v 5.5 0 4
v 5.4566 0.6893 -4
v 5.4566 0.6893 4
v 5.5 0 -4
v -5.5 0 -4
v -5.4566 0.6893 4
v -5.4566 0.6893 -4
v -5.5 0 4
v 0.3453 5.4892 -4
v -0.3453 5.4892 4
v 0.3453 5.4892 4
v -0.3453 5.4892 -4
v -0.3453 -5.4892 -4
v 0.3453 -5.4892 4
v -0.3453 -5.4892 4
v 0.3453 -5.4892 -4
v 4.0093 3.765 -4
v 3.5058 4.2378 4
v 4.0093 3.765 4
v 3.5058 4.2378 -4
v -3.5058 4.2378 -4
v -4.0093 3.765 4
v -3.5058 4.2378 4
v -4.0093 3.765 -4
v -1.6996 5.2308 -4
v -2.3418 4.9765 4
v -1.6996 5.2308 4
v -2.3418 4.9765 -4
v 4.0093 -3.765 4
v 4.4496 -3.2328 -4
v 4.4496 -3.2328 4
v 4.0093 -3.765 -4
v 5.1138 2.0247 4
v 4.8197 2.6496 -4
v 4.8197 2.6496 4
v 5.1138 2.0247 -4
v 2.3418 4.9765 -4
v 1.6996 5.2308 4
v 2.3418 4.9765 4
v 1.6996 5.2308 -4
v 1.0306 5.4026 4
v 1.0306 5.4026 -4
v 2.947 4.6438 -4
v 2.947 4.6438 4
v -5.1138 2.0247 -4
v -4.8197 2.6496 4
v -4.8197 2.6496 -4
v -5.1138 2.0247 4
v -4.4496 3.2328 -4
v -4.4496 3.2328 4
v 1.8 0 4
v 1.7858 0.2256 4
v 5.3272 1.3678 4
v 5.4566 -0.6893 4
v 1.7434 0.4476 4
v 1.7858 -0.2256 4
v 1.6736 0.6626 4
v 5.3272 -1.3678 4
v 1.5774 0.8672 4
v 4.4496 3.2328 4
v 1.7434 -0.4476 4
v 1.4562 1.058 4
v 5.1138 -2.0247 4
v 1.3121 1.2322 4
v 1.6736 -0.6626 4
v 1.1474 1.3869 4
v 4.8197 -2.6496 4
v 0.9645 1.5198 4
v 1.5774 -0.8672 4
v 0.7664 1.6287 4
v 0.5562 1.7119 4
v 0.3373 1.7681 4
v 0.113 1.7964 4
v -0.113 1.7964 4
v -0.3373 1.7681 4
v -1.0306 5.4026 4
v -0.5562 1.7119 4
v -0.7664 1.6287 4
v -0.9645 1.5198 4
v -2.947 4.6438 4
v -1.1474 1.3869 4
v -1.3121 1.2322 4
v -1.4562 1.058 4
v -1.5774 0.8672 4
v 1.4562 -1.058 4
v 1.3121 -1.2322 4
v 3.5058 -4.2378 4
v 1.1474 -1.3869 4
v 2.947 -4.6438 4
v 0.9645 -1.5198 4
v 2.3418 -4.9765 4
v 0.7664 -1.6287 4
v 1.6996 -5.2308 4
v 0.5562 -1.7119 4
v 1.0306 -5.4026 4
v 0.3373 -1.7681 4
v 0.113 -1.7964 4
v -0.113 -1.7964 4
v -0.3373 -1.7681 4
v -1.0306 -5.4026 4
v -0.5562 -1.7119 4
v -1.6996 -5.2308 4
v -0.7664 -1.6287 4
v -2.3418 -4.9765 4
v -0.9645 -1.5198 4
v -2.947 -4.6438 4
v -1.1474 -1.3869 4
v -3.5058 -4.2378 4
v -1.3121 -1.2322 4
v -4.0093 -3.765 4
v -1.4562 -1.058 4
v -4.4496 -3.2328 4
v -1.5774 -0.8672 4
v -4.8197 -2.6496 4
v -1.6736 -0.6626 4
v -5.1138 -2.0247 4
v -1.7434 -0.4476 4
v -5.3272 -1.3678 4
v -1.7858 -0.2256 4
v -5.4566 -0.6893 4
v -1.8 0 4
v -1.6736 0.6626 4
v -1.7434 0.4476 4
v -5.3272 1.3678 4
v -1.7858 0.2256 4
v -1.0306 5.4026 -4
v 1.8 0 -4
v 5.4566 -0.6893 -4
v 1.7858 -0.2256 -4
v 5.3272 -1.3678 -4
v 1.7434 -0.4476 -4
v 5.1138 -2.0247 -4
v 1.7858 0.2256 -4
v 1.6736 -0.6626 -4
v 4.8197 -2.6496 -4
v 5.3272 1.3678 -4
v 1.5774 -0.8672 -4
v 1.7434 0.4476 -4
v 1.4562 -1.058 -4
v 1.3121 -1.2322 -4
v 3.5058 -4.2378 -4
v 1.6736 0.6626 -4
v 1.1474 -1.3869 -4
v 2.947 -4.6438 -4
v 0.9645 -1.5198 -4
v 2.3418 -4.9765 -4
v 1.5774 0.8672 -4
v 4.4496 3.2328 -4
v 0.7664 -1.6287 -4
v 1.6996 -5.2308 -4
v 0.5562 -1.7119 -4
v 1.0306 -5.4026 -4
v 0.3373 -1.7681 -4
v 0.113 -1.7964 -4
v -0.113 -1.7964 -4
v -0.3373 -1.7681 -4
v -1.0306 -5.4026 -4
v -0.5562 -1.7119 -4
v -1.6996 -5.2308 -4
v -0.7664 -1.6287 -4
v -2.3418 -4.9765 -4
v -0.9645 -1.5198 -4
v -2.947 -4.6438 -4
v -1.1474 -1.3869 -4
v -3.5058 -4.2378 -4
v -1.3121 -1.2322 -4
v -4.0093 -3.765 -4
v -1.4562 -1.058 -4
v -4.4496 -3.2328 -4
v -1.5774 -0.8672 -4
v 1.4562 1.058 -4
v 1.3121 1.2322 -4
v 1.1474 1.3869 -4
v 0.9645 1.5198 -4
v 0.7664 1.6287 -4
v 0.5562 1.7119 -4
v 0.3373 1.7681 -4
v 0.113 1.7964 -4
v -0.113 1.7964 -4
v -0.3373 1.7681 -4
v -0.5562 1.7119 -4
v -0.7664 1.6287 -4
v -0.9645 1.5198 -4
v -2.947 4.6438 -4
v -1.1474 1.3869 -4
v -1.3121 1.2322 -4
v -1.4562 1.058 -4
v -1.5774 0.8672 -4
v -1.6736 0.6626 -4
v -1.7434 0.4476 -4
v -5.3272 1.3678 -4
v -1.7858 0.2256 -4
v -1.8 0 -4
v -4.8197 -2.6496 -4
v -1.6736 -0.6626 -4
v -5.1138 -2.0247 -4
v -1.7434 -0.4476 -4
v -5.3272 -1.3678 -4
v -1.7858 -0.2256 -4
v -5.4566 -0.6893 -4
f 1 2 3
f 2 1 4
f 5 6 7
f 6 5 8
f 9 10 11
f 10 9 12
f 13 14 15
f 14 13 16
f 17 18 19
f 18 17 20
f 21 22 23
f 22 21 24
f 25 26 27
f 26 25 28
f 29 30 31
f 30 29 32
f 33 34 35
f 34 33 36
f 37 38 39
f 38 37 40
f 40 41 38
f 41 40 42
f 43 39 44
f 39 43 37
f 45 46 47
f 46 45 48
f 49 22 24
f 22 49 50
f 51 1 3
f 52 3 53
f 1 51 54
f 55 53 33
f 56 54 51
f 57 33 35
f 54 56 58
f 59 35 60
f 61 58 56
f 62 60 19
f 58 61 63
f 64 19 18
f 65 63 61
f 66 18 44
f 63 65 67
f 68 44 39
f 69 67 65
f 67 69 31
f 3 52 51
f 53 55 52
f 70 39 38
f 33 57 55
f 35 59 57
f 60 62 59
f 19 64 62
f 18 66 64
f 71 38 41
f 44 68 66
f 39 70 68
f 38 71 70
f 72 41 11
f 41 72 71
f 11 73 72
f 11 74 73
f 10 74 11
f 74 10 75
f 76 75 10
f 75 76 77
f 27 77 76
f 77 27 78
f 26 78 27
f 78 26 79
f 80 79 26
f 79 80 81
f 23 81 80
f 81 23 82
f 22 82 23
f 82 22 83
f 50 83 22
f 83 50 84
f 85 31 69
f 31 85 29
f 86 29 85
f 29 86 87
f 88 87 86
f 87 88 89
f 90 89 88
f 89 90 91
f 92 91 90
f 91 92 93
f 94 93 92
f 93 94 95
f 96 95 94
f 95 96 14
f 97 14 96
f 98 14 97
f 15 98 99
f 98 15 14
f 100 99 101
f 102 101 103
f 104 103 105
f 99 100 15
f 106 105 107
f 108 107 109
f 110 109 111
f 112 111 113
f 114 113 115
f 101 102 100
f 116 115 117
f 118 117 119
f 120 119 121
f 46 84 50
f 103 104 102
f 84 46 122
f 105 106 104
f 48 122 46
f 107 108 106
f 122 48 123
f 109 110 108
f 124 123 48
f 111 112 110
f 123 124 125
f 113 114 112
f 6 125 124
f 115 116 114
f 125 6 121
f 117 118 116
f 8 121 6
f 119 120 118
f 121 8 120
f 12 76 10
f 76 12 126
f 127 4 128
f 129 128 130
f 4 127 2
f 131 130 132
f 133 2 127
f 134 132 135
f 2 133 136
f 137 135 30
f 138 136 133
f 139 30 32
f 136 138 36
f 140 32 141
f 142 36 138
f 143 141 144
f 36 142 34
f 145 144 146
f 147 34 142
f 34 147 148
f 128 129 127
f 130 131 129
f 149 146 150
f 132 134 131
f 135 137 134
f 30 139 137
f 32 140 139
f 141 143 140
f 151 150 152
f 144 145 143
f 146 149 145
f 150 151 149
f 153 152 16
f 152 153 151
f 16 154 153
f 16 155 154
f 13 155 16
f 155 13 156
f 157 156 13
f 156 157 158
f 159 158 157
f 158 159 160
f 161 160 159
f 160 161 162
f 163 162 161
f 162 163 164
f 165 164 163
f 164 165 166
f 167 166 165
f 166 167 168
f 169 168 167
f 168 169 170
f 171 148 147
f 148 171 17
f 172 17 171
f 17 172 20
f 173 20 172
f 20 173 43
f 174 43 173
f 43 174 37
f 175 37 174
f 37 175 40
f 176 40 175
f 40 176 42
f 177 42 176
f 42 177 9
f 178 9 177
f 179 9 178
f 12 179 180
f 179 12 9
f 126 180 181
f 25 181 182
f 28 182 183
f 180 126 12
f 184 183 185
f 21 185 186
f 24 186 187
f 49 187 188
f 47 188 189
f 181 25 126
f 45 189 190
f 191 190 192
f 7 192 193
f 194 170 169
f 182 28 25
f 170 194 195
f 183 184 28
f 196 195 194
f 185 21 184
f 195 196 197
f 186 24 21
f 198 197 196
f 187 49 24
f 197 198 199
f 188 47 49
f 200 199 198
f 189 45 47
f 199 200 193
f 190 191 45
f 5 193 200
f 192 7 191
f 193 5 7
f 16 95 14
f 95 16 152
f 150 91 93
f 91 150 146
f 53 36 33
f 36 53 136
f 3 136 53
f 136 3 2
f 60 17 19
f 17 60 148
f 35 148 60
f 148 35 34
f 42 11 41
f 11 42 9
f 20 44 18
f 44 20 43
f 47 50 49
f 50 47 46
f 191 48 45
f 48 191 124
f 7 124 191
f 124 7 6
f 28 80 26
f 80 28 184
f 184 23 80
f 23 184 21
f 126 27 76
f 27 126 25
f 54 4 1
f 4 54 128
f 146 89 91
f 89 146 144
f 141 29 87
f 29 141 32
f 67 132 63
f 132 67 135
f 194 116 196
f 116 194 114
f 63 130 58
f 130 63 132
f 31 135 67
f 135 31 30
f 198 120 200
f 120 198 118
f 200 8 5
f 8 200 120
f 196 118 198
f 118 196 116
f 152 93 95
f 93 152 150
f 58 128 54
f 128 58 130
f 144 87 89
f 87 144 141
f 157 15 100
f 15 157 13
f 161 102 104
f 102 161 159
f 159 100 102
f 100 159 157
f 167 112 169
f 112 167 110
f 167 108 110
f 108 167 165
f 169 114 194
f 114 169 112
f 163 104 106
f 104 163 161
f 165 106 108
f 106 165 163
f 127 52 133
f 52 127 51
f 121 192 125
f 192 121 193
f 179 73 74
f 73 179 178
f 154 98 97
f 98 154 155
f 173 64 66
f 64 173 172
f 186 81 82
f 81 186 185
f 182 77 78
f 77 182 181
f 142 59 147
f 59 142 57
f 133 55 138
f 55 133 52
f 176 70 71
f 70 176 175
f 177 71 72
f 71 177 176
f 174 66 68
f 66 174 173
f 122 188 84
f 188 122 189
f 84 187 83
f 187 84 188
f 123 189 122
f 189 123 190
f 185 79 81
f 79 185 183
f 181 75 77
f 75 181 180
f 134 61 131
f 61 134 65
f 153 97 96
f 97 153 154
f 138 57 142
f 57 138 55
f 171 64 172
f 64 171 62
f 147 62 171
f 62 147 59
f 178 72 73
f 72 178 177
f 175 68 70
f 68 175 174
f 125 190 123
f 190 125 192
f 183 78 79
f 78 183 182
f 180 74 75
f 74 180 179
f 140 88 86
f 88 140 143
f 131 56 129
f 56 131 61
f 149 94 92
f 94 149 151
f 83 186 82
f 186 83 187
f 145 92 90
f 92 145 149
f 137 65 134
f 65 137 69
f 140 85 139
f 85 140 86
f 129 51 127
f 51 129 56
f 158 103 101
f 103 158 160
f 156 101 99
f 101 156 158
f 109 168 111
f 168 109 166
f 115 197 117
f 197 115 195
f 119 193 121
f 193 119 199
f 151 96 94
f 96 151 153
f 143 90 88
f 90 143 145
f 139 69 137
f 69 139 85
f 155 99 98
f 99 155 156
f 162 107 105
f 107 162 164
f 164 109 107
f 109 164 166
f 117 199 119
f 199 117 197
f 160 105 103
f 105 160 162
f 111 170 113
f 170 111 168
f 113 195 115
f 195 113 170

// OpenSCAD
$fn = 50;


difference() {
	union() {
		translate(v = [0, 0, -4.0000000000]) {
			cylinder(h = 8, r = 5.5000000000);
		}
	}
	union() {
		#translate(v = [0, 0, -100.0000000000]) {
			cylinder(h = 200, r = 1.8000000000);
		}
	}
}
